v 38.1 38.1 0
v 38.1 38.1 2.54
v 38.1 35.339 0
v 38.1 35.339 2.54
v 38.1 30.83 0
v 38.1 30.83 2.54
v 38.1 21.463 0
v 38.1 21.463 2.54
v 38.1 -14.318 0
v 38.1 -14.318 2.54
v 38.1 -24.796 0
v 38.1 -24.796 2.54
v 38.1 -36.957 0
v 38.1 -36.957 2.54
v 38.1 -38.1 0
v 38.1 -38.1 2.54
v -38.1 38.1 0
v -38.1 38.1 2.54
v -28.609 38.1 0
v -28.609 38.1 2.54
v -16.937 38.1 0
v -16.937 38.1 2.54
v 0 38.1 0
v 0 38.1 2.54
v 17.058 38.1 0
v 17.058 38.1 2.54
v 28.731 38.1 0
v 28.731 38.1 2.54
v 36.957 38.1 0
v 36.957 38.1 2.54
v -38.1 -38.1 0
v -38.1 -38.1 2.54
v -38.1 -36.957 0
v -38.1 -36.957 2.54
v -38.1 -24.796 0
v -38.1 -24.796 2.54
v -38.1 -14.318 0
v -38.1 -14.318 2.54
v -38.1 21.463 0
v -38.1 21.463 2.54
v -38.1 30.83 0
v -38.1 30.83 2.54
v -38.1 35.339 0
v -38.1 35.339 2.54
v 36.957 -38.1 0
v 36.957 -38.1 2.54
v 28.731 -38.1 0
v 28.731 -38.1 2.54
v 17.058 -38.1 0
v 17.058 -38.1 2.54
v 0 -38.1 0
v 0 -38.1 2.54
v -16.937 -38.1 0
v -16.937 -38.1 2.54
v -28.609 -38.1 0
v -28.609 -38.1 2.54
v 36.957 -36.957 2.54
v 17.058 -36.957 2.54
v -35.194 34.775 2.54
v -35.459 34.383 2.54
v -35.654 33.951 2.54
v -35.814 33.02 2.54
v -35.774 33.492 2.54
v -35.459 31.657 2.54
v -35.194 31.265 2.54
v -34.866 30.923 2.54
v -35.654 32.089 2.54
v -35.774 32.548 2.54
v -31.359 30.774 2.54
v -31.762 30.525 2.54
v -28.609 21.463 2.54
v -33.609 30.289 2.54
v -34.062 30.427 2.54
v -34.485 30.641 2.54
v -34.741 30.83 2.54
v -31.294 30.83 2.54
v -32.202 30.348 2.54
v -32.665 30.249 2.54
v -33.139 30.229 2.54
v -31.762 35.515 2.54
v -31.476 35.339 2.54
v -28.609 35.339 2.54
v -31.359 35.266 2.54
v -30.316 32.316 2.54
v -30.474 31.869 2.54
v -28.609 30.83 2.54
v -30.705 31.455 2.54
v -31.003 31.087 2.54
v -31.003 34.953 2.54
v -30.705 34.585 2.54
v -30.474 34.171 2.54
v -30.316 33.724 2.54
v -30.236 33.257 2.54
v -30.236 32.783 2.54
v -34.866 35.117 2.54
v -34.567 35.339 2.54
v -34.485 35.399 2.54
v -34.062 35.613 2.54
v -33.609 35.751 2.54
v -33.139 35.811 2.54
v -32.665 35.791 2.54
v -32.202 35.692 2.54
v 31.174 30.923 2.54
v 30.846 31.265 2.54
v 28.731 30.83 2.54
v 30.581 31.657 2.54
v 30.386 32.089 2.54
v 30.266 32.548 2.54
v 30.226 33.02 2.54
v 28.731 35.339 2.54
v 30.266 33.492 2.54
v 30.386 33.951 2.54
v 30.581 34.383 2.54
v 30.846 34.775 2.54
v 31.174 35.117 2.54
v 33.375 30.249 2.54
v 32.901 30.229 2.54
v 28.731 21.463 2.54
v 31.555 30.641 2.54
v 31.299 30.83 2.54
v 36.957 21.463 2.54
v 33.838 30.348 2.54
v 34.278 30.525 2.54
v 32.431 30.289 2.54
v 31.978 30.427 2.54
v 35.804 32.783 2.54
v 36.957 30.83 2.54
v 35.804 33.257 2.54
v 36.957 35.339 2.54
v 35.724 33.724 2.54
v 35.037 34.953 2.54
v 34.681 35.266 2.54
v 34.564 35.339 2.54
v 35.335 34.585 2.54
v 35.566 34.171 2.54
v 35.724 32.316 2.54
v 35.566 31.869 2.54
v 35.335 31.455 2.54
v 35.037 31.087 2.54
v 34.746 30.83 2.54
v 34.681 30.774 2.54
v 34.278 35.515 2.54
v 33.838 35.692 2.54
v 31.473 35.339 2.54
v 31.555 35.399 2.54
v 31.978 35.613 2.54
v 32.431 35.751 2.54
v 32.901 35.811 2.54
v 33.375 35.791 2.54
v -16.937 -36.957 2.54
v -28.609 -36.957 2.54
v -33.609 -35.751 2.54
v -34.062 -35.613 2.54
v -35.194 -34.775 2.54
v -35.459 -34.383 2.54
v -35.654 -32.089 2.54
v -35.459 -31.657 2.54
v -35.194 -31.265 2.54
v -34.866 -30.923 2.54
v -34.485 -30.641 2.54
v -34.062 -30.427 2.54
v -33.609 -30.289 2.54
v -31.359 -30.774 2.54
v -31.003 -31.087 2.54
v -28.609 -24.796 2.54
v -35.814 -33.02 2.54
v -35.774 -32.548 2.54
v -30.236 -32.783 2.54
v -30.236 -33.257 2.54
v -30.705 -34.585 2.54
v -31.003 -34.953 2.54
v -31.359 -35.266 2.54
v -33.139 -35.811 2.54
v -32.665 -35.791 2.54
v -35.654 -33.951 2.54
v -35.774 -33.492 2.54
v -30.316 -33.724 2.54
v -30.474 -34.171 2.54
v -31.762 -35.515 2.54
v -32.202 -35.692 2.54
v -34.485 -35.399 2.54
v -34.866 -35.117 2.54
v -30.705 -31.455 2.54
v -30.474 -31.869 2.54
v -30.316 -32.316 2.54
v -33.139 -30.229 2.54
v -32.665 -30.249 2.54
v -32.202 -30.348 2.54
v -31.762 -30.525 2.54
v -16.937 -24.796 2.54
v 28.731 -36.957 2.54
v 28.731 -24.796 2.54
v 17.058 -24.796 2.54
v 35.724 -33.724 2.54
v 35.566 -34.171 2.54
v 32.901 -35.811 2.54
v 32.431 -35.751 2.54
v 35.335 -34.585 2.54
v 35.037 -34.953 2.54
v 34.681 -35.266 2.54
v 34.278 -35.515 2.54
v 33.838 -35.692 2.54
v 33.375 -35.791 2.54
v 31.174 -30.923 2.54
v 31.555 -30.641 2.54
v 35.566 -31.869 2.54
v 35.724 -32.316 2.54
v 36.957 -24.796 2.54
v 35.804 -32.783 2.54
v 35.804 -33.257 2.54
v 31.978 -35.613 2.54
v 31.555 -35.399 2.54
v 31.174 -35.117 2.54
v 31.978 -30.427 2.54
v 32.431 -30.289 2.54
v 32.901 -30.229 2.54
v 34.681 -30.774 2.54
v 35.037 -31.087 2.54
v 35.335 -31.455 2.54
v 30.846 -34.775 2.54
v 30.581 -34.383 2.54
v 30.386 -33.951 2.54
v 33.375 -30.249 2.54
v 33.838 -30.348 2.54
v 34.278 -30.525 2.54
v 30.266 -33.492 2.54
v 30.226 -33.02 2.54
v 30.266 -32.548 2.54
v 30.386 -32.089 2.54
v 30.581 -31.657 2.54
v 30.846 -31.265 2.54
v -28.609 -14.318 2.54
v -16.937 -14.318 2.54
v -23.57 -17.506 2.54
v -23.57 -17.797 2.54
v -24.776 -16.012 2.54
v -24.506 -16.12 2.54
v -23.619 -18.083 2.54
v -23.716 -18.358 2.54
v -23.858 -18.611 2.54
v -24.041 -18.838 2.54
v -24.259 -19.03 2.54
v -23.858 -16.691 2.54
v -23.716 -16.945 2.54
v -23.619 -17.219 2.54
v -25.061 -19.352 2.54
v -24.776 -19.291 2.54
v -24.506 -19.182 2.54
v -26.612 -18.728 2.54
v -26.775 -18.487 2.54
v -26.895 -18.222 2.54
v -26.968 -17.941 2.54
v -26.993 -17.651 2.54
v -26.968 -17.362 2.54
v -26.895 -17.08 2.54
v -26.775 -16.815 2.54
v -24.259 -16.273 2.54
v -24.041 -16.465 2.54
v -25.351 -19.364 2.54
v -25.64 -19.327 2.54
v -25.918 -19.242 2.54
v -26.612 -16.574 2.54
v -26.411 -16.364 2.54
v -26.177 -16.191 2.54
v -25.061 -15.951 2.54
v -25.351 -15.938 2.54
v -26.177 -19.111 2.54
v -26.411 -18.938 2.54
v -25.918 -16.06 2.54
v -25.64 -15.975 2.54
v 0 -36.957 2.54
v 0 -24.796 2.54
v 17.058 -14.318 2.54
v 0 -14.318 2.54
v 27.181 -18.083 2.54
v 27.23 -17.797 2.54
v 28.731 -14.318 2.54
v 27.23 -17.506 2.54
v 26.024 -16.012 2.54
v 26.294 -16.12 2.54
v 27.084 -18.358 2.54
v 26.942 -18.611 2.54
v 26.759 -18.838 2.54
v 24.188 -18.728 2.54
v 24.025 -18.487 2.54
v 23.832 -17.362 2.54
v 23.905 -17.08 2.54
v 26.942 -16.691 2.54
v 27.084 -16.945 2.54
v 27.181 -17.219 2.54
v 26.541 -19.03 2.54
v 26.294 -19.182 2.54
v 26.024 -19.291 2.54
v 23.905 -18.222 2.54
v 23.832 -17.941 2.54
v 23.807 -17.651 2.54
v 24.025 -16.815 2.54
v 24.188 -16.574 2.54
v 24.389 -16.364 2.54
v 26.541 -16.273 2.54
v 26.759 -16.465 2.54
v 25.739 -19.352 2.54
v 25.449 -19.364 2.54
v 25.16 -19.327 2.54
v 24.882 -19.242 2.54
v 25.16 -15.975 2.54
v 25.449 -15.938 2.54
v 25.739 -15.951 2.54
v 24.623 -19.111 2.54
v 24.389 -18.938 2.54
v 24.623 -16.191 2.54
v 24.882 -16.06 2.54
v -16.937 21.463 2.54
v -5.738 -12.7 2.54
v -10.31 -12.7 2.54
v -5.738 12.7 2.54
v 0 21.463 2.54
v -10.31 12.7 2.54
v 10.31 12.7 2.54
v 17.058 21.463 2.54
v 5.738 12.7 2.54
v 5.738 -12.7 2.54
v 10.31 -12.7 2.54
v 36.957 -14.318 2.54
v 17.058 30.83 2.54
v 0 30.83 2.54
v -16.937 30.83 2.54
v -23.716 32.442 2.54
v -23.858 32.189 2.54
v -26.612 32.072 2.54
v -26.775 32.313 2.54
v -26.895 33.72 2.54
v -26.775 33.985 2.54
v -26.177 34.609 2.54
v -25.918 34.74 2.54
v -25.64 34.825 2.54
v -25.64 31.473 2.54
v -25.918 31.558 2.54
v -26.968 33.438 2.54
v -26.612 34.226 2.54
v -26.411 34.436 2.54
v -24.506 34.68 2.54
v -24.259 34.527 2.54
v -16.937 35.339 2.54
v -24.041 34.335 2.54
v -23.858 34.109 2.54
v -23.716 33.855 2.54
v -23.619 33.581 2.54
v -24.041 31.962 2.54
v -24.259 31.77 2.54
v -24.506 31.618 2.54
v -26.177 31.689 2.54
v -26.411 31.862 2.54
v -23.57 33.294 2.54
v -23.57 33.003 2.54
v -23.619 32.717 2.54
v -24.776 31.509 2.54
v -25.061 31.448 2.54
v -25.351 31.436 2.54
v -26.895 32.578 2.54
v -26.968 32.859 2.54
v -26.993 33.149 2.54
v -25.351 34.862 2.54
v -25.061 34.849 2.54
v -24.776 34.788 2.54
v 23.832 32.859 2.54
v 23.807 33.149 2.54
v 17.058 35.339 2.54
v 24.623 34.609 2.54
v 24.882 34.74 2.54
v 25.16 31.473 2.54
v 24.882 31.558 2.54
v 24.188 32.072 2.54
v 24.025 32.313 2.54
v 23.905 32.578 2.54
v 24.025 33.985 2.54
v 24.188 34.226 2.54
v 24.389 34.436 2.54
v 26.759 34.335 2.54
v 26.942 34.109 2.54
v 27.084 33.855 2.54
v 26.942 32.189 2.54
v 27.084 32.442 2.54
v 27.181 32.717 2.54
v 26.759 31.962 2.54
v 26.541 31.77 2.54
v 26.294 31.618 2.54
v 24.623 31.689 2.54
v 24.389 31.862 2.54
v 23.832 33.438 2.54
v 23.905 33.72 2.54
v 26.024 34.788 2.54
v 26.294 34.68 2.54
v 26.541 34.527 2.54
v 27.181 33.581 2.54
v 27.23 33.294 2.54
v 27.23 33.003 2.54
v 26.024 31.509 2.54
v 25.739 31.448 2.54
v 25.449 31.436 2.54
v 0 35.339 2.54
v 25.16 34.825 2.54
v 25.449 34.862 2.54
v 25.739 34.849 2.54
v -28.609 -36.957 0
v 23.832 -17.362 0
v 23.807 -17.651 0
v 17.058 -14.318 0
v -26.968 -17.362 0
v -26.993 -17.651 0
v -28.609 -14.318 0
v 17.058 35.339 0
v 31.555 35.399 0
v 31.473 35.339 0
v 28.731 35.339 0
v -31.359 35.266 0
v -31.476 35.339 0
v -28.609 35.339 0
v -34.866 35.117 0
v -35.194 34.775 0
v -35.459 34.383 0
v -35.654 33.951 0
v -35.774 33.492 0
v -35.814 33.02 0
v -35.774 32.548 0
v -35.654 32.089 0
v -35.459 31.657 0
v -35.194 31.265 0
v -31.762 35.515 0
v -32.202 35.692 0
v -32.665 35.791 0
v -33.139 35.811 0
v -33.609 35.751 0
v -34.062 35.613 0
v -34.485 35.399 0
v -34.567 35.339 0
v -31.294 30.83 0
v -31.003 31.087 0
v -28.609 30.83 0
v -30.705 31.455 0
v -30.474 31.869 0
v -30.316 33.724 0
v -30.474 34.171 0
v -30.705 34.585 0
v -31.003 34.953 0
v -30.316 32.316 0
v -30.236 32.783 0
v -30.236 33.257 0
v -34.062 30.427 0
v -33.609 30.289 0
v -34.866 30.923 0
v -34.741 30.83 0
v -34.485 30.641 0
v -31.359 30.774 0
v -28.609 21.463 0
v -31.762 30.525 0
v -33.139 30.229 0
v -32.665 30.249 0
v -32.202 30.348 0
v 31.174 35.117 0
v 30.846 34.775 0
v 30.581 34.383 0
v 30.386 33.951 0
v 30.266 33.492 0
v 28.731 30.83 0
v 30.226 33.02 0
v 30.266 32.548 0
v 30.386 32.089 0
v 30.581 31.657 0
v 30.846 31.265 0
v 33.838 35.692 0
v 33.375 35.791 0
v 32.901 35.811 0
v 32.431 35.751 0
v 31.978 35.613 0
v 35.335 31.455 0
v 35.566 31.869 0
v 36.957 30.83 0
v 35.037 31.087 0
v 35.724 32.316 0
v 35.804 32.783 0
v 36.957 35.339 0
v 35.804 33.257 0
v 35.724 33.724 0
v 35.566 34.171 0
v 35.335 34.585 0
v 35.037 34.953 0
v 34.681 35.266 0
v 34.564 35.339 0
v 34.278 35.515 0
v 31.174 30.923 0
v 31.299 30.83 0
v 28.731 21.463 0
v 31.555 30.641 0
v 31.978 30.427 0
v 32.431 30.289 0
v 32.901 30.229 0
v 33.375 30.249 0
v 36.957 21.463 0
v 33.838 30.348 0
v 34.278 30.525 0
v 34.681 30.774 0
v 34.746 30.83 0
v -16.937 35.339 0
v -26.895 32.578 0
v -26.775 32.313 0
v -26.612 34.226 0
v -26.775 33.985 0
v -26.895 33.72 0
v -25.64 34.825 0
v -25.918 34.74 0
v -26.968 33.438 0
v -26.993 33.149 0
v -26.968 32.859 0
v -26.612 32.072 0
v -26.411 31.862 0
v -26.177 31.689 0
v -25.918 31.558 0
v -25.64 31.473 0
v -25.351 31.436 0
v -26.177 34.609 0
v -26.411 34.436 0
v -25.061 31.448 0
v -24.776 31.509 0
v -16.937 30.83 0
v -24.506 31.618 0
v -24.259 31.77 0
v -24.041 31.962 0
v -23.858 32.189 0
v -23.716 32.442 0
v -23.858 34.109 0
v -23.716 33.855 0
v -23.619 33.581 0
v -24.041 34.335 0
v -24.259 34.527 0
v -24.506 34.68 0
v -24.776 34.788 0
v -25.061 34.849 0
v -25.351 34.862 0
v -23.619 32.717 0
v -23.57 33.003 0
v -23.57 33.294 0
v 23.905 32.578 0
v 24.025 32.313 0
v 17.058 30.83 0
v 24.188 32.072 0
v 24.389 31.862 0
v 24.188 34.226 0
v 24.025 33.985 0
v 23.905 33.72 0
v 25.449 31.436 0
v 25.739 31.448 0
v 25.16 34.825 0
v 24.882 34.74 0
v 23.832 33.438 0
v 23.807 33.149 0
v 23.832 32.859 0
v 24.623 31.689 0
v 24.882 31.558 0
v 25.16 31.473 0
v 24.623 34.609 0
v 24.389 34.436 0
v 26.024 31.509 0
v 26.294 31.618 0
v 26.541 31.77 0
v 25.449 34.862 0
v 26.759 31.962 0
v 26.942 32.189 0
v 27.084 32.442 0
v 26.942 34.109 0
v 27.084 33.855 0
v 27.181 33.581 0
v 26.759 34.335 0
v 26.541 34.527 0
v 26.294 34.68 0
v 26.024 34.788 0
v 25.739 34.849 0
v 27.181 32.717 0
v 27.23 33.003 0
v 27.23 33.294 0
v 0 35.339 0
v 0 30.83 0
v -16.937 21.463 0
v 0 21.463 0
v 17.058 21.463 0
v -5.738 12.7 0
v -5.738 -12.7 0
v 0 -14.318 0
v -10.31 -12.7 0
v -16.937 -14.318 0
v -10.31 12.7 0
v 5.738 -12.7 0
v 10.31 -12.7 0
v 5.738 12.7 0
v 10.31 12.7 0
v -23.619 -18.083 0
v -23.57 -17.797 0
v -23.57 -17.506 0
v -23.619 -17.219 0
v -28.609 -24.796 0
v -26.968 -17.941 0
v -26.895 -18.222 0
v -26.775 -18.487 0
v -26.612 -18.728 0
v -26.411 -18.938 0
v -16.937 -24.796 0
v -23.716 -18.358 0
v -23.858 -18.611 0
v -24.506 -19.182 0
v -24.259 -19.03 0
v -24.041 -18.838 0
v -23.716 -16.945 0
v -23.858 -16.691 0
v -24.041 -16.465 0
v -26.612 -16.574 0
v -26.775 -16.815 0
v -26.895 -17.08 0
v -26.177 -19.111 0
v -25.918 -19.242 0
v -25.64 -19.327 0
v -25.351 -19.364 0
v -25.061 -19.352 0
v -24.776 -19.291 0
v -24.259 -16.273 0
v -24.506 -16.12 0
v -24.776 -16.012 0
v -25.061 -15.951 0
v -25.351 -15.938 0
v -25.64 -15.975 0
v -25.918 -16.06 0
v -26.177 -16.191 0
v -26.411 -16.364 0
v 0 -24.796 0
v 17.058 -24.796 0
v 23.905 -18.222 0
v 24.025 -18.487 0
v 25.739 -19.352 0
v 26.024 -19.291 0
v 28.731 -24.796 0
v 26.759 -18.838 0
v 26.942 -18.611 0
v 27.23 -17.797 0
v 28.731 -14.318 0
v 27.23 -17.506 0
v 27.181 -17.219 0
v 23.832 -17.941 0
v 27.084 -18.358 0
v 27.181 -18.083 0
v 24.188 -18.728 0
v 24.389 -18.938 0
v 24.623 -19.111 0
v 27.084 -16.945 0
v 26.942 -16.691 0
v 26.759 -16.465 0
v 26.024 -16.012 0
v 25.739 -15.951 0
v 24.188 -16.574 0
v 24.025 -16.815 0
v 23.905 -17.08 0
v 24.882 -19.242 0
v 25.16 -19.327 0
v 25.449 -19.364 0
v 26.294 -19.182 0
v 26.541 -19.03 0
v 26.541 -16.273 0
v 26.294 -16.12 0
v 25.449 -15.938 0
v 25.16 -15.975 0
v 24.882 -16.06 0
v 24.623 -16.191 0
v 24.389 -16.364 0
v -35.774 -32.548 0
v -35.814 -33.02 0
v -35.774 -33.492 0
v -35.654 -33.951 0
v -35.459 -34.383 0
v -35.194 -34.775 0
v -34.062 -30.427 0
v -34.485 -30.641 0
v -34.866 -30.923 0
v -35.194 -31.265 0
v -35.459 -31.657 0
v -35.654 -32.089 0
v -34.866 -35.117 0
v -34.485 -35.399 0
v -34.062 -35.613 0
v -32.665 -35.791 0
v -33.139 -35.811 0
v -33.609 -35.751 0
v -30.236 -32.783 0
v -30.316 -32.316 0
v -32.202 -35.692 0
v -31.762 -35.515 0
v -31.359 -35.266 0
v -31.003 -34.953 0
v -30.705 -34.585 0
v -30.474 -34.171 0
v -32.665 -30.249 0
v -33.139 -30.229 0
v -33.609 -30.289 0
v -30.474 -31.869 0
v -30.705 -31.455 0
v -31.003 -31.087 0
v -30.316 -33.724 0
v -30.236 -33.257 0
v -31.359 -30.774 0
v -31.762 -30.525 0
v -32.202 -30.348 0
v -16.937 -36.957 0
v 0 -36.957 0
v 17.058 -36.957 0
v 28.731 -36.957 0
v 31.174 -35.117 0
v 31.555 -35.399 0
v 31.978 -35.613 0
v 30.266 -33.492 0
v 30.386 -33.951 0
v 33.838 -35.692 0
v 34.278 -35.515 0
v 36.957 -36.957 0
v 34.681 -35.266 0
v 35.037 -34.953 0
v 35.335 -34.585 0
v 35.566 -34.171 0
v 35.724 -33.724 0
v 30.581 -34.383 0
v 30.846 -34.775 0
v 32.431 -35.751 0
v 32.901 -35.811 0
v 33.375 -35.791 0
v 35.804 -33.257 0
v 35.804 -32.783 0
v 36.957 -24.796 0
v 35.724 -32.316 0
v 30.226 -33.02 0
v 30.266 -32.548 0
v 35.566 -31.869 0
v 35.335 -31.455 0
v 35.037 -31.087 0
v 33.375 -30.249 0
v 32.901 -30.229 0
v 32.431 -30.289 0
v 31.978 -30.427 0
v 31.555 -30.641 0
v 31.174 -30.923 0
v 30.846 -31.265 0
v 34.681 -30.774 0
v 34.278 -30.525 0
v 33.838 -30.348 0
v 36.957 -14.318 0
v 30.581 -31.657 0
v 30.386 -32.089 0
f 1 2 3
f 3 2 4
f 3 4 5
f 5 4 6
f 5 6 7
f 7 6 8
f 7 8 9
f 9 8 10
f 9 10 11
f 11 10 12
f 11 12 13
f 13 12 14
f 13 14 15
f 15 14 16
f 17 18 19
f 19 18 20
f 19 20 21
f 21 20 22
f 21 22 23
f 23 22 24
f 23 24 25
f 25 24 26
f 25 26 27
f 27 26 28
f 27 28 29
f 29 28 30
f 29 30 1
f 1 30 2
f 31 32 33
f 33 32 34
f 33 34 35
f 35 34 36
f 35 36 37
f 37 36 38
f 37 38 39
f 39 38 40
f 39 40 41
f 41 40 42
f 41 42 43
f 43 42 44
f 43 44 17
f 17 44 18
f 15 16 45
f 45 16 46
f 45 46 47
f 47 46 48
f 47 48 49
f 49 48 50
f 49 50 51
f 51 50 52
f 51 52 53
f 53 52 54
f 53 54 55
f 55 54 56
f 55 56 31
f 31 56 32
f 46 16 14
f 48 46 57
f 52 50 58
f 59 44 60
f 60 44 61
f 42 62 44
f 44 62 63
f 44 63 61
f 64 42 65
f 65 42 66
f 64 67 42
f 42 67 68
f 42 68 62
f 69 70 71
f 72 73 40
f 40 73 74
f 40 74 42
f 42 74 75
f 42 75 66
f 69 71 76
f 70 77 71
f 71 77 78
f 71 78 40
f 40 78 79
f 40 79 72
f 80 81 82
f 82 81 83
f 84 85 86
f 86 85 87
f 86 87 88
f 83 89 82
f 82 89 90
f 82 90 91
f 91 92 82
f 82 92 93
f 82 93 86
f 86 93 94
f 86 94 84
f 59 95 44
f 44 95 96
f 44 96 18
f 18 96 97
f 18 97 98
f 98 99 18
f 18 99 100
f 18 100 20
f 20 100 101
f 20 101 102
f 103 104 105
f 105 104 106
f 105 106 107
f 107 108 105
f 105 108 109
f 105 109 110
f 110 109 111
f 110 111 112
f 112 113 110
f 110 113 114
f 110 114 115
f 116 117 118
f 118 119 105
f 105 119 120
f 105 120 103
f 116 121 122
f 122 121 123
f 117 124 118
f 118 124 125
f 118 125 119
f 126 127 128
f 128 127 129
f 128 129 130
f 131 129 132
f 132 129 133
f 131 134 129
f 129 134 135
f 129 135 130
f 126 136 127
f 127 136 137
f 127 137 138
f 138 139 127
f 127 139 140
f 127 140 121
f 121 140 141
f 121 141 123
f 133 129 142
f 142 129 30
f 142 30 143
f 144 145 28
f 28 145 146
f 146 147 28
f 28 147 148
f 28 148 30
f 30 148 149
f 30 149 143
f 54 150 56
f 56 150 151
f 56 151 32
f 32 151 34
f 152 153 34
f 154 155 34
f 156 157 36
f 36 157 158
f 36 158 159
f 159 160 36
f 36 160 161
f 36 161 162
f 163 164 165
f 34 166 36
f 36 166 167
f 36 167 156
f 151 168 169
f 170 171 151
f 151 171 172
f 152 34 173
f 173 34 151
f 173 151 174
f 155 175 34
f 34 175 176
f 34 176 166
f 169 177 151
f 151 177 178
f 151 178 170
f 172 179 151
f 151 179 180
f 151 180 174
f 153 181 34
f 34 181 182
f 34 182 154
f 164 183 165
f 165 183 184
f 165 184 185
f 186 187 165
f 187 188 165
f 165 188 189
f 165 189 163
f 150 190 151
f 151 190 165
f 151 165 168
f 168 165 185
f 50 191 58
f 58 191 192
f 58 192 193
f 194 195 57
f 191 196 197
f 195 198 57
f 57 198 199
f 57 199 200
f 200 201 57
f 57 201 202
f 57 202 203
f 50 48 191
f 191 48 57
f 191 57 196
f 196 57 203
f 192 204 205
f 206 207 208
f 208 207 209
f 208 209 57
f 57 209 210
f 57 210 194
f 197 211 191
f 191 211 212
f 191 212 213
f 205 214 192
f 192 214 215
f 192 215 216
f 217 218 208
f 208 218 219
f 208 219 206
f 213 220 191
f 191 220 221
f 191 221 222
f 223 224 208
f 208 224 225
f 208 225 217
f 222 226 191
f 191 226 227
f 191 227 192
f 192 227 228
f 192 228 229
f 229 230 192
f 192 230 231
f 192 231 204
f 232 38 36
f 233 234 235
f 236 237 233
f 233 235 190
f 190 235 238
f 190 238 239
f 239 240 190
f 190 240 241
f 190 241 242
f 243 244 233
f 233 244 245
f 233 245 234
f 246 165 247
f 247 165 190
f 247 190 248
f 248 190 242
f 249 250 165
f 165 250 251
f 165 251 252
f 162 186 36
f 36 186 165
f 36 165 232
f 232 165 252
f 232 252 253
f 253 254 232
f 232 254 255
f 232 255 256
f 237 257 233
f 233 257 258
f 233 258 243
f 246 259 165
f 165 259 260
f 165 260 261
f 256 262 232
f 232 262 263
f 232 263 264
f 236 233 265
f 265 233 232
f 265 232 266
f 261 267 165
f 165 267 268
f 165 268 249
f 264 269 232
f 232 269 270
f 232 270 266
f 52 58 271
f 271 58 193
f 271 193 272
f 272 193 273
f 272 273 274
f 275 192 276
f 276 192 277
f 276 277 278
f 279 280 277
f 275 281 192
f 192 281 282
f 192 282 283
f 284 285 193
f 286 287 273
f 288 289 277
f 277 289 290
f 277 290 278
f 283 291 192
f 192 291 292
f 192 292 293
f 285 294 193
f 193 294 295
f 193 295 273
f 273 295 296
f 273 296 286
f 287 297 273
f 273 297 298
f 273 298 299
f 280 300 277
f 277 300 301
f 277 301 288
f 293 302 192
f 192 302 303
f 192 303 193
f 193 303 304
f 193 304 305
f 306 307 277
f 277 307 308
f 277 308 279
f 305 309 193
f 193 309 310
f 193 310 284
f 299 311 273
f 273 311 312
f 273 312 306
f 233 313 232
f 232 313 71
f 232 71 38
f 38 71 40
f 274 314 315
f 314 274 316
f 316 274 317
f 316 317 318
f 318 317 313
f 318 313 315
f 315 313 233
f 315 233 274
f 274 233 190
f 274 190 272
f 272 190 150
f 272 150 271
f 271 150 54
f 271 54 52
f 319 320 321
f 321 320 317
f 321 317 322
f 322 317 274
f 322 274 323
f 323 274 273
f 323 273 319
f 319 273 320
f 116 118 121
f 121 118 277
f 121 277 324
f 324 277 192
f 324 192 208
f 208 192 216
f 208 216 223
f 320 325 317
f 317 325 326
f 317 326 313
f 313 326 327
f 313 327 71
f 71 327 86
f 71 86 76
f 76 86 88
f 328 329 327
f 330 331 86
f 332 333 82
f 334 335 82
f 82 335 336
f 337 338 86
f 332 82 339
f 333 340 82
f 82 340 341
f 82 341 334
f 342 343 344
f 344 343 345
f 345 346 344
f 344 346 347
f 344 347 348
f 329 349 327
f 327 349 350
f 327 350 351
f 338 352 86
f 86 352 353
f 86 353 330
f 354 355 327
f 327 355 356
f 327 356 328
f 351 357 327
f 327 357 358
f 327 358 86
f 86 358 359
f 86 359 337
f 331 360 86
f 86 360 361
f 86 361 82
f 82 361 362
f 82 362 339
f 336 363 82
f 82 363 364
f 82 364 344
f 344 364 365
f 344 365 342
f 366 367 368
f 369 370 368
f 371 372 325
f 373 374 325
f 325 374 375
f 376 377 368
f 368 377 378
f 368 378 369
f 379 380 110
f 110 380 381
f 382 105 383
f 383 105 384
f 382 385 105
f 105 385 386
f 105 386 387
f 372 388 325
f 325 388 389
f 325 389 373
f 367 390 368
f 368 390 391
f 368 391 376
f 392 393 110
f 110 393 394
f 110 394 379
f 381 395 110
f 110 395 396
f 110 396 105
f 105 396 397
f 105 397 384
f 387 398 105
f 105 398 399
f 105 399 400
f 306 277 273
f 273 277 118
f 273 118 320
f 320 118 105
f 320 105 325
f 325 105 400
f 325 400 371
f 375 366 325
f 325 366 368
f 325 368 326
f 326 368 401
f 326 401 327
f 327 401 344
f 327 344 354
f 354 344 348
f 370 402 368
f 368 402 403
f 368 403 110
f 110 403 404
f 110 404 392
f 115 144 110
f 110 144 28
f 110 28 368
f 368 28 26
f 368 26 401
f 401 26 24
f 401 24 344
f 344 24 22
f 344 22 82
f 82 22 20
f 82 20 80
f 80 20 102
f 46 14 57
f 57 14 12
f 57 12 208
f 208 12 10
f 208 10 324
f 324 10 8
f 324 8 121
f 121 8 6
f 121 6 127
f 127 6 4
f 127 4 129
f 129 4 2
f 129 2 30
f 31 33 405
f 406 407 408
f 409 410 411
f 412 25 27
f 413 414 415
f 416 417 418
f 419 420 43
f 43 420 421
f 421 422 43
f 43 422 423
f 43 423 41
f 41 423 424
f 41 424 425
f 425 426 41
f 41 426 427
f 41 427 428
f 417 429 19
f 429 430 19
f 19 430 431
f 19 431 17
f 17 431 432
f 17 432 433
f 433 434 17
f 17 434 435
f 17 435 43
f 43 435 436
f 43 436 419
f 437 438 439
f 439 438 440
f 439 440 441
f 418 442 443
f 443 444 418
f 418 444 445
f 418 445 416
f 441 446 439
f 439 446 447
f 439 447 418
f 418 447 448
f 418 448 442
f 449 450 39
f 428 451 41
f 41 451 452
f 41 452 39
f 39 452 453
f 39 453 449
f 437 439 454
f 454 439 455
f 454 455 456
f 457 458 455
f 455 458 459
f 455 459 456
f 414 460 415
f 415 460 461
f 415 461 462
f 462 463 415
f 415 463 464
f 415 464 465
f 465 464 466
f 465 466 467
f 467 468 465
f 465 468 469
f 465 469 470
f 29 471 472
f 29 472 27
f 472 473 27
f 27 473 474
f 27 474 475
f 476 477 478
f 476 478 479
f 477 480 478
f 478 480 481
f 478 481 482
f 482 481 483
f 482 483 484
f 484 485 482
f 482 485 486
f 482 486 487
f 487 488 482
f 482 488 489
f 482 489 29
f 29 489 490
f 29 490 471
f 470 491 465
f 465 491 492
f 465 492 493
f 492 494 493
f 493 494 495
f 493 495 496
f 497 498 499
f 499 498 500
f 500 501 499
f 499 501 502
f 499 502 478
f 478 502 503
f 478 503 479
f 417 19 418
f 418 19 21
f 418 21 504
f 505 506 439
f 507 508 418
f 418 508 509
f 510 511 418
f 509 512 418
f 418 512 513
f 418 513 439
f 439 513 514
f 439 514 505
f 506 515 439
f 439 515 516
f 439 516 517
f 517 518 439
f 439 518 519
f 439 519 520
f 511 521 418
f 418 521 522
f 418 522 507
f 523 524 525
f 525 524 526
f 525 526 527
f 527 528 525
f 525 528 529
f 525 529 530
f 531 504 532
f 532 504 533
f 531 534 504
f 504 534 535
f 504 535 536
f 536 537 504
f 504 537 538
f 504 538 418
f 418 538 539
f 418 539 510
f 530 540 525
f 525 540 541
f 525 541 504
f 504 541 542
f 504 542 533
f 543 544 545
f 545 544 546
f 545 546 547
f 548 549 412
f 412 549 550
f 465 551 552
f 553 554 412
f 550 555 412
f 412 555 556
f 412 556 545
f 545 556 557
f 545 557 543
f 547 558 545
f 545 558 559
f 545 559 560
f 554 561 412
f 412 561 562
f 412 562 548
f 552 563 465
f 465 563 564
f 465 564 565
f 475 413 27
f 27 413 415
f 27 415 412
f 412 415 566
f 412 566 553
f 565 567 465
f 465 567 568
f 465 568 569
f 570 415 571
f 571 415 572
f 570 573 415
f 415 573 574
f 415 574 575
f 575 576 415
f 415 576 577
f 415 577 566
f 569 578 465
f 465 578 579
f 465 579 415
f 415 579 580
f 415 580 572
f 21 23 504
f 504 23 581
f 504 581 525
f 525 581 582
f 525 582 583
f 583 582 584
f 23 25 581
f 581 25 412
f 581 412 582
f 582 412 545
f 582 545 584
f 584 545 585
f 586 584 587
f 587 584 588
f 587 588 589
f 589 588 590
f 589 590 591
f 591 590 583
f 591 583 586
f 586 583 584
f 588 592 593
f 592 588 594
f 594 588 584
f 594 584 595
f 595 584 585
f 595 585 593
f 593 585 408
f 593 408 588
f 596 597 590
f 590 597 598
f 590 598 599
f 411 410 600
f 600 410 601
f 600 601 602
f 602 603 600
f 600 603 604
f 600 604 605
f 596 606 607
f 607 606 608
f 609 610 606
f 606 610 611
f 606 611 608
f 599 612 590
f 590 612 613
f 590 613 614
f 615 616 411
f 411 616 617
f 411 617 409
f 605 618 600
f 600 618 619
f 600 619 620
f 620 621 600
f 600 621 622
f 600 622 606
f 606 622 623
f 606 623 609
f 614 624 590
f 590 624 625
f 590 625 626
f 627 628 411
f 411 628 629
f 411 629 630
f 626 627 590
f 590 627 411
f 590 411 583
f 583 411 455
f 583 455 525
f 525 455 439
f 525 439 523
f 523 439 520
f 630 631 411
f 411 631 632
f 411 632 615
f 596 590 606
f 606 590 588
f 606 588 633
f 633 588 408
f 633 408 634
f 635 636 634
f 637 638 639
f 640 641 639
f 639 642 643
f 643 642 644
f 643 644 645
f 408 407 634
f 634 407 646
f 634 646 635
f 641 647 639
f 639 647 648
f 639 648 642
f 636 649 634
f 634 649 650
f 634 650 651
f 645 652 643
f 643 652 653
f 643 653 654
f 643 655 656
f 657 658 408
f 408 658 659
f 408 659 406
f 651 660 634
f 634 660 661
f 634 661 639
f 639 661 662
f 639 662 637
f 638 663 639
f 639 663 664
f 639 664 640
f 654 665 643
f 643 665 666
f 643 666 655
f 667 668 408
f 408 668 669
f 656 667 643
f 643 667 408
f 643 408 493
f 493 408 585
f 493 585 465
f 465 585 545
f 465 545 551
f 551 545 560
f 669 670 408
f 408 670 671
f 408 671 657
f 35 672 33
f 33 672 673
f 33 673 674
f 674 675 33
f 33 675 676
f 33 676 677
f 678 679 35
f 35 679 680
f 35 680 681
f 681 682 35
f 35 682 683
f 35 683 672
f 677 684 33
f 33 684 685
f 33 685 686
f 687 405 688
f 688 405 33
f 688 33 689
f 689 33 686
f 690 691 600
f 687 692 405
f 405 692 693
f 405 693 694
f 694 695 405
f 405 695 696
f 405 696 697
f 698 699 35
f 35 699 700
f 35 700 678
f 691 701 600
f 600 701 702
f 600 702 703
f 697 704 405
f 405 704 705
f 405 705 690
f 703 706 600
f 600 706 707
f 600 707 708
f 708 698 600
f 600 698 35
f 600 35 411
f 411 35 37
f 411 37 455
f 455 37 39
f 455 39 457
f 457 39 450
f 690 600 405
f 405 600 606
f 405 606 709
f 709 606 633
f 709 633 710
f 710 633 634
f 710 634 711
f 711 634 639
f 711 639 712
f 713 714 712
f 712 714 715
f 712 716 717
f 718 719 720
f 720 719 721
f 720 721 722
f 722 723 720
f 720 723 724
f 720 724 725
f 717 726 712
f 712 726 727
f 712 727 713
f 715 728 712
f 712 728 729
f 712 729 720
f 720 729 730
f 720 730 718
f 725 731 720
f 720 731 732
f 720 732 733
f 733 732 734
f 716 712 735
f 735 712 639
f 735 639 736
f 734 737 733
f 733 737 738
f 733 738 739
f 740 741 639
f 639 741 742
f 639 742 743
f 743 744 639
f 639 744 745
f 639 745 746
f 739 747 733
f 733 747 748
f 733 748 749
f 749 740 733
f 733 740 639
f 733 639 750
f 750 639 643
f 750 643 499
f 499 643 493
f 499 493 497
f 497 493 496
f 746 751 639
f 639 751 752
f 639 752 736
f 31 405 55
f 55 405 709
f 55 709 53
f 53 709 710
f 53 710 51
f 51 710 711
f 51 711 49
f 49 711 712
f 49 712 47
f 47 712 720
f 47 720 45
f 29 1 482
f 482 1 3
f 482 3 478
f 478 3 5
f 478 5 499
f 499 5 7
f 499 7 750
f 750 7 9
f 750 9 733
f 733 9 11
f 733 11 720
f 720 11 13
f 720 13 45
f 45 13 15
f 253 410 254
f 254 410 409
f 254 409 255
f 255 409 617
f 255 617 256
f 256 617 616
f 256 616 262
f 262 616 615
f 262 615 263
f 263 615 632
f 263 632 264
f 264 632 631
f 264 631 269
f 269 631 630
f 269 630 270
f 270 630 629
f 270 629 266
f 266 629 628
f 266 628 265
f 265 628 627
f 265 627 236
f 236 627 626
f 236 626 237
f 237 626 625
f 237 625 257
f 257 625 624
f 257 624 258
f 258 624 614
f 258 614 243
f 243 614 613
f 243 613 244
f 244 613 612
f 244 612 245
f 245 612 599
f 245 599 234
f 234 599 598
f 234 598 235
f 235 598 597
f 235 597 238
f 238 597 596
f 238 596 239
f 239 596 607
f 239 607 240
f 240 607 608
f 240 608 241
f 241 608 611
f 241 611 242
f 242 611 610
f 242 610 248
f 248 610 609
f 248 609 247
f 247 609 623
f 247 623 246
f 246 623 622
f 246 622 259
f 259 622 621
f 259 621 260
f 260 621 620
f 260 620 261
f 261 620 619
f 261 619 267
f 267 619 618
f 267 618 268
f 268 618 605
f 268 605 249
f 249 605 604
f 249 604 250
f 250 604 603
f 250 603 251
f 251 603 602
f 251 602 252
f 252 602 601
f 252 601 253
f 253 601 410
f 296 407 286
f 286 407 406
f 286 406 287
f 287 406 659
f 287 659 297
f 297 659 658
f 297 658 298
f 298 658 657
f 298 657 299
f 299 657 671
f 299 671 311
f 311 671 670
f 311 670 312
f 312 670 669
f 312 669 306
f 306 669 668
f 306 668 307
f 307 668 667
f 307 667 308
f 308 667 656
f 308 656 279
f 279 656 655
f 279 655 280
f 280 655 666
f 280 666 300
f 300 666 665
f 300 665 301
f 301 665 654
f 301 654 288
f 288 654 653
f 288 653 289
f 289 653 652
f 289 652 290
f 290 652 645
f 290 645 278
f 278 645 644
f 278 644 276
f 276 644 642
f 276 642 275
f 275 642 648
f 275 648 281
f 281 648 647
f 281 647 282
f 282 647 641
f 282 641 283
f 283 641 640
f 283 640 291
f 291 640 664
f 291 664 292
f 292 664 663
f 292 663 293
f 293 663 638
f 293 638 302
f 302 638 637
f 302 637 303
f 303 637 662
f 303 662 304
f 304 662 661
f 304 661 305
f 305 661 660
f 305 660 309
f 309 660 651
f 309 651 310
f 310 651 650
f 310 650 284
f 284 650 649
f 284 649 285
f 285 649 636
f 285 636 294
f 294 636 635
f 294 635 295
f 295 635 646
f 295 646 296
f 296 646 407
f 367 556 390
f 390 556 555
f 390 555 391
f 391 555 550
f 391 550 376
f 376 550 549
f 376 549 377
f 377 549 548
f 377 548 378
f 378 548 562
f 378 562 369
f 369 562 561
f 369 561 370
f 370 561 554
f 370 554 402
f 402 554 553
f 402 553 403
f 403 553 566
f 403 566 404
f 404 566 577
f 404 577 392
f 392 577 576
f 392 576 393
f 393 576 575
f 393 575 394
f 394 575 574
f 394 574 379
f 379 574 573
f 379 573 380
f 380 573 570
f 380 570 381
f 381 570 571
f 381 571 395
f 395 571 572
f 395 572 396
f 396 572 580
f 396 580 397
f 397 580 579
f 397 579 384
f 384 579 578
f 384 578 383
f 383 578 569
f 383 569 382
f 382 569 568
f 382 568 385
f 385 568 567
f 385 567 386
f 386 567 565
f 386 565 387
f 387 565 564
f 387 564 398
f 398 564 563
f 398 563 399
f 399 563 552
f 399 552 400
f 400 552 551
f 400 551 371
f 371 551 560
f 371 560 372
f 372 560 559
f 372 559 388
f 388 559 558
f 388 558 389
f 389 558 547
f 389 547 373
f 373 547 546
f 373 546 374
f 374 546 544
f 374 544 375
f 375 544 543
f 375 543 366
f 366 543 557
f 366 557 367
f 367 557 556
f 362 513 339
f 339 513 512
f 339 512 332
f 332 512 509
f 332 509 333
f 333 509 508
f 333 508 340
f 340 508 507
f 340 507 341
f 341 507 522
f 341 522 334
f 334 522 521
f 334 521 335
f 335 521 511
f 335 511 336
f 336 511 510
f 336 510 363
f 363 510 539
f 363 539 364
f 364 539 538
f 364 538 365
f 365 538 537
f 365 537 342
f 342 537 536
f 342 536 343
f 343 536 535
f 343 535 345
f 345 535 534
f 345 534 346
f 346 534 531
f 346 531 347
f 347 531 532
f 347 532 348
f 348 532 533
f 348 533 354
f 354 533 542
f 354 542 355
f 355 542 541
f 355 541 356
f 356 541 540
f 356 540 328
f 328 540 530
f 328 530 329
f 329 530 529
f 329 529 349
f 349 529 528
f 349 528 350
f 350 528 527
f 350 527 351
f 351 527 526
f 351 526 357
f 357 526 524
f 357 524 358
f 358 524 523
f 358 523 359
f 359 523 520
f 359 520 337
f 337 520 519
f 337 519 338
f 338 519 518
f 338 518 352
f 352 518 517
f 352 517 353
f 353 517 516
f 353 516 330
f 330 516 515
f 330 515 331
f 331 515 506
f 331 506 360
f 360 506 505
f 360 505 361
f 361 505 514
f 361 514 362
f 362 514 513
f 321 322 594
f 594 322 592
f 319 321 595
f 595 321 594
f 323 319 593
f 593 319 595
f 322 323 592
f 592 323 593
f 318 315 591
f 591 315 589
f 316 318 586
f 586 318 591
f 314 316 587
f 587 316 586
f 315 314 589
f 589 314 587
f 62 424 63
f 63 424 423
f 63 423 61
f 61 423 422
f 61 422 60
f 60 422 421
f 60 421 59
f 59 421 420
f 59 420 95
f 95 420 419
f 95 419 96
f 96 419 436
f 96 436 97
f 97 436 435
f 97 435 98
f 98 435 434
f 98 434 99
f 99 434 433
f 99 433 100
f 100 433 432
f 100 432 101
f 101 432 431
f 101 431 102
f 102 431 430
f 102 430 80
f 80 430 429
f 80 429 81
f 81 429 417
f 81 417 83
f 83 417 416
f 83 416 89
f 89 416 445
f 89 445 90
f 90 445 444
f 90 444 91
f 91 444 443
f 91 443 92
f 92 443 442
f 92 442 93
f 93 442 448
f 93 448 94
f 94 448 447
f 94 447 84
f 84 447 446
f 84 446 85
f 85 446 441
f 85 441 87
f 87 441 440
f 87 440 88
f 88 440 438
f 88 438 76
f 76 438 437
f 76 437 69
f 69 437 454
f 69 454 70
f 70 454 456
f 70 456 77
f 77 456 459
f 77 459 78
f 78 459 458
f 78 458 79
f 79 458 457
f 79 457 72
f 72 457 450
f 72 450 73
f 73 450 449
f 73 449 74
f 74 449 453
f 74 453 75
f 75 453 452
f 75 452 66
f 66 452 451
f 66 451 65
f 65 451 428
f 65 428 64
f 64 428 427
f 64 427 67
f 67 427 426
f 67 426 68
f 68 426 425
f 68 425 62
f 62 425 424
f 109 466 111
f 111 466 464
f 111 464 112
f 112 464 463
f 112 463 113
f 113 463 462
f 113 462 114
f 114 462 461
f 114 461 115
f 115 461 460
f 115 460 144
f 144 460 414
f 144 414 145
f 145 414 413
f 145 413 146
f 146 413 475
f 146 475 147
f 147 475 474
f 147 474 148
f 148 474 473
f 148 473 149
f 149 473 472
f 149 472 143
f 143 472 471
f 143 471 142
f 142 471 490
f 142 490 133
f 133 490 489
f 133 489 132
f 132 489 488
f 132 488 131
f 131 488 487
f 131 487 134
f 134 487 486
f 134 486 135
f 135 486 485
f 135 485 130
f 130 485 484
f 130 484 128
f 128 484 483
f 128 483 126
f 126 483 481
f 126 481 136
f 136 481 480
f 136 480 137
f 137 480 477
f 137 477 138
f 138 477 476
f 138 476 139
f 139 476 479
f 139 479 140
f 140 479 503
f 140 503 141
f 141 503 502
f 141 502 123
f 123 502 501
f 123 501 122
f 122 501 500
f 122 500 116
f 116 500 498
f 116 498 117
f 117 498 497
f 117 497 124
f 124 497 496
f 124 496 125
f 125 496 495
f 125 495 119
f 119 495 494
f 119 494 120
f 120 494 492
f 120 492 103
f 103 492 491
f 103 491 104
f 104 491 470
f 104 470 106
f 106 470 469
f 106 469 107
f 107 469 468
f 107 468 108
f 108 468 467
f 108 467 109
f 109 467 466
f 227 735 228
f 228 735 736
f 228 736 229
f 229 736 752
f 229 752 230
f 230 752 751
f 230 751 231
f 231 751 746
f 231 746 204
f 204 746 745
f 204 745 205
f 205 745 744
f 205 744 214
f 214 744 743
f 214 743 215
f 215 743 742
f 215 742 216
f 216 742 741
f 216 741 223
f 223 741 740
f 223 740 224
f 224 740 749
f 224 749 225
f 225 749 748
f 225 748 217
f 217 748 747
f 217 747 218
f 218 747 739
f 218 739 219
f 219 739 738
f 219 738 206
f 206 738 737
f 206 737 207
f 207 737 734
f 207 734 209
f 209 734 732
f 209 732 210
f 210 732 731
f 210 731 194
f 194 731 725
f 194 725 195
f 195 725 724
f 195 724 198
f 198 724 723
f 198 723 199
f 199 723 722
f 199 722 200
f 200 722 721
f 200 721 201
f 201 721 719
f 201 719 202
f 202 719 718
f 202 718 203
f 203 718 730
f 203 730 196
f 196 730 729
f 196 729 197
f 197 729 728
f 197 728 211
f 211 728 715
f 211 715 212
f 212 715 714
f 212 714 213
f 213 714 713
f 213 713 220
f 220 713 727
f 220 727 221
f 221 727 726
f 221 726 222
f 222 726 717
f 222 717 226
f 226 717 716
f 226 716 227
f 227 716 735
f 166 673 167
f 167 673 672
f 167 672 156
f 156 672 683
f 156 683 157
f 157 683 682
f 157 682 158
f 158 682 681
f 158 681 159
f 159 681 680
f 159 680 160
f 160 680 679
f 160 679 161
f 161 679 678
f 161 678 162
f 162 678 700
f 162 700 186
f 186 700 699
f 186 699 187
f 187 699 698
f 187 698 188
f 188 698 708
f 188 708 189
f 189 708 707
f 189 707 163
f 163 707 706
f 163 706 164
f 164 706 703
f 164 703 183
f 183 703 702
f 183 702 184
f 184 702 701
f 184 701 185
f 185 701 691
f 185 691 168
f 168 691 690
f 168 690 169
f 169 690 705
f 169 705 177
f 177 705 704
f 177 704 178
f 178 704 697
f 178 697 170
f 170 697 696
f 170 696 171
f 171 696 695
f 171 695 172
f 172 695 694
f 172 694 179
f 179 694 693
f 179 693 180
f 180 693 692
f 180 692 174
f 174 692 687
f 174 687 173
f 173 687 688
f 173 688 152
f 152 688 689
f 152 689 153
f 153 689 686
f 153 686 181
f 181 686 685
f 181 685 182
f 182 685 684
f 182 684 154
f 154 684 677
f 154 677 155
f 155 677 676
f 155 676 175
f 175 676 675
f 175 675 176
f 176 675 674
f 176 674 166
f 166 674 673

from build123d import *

# Parameters (mm, degrees)
SKETCH2_W           = 76.2
SKETCH2_H           = 76.2
BOSS_EXTRUDE1_DEPTH = 2.54
SKETCH7_R           = 1.7145
CUT_EXTRUDE1_DEPTH  = 5.08
SKETCH9_W           = 4.572
SKETCH9_H           = 25.4
CUT_EXTRUDE2_DEPTH  = 5.08
SKETCH6_R           = 2.794
CUT_EXTRUDE3_DEPTH  = 5.08


with BuildPart() as part:
    # Sketch2 → Boss-Extrude1 (new body)
    with BuildSketch(Plane.XY):
        Rectangle(SKETCH2_W, SKETCH2_H)
    extrude(amount=BOSS_EXTRUDE1_DEPTH)

    # Sketch7 → Cut-Extrude1 (cut)
    with BuildSketch(Plane(origin=(0, 0, 0), x_dir=(-1, 0, 0), z_dir=(0, 0, -1))):
        with Locations((25.278322628, -17.651318113)):
            Circle(SKETCH7_R)
        with Locations((25.278322628, 33.148681887)):
            Circle(SKETCH7_R)
        with Locations((-25.521677372, 33.148681887)):
            Circle(SKETCH7_R)
        with Locations((-25.521677372, -17.651318113)):
            Circle(SKETCH7_R)
    extrude(amount=-CUT_EXTRUDE1_DEPTH, mode=Mode.SUBTRACT)

    # Sketch9 → Cut-Extrude2 (cut)
    with BuildSketch(Plane.XY.offset(2.54)):
        with Locations((8.023665405, 0)):
            Rectangle(SKETCH9_W, SKETCH9_H)
        with Locations((-8.023665405, 0)):
            Rectangle(SKETCH9_W, SKETCH9_H)
    extrude(amount=-CUT_EXTRUDE2_DEPTH, mode=Mode.SUBTRACT)

    # Sketch6 → Cut-Extrude3 (cut)
    with BuildSketch(Plane(origin=(0, 0, 0), x_dir=(-1, 0, 0), z_dir=(0, 0, -1))):
        with Locations((33.02, 33.02)):
            Circle(SKETCH6_R)
        with Locations((-33.02, 33.02)):
            Circle(SKETCH6_R)
        with Locations((-33.02, -33.02)):
            Circle(SKETCH6_R)
        with Locations((33.02, -33.02)):
            Circle(SKETCH6_R)
    extrude(amount=-CUT_EXTRUDE3_DEPTH, mode=Mode.SUBTRACT)


solid = part.part
